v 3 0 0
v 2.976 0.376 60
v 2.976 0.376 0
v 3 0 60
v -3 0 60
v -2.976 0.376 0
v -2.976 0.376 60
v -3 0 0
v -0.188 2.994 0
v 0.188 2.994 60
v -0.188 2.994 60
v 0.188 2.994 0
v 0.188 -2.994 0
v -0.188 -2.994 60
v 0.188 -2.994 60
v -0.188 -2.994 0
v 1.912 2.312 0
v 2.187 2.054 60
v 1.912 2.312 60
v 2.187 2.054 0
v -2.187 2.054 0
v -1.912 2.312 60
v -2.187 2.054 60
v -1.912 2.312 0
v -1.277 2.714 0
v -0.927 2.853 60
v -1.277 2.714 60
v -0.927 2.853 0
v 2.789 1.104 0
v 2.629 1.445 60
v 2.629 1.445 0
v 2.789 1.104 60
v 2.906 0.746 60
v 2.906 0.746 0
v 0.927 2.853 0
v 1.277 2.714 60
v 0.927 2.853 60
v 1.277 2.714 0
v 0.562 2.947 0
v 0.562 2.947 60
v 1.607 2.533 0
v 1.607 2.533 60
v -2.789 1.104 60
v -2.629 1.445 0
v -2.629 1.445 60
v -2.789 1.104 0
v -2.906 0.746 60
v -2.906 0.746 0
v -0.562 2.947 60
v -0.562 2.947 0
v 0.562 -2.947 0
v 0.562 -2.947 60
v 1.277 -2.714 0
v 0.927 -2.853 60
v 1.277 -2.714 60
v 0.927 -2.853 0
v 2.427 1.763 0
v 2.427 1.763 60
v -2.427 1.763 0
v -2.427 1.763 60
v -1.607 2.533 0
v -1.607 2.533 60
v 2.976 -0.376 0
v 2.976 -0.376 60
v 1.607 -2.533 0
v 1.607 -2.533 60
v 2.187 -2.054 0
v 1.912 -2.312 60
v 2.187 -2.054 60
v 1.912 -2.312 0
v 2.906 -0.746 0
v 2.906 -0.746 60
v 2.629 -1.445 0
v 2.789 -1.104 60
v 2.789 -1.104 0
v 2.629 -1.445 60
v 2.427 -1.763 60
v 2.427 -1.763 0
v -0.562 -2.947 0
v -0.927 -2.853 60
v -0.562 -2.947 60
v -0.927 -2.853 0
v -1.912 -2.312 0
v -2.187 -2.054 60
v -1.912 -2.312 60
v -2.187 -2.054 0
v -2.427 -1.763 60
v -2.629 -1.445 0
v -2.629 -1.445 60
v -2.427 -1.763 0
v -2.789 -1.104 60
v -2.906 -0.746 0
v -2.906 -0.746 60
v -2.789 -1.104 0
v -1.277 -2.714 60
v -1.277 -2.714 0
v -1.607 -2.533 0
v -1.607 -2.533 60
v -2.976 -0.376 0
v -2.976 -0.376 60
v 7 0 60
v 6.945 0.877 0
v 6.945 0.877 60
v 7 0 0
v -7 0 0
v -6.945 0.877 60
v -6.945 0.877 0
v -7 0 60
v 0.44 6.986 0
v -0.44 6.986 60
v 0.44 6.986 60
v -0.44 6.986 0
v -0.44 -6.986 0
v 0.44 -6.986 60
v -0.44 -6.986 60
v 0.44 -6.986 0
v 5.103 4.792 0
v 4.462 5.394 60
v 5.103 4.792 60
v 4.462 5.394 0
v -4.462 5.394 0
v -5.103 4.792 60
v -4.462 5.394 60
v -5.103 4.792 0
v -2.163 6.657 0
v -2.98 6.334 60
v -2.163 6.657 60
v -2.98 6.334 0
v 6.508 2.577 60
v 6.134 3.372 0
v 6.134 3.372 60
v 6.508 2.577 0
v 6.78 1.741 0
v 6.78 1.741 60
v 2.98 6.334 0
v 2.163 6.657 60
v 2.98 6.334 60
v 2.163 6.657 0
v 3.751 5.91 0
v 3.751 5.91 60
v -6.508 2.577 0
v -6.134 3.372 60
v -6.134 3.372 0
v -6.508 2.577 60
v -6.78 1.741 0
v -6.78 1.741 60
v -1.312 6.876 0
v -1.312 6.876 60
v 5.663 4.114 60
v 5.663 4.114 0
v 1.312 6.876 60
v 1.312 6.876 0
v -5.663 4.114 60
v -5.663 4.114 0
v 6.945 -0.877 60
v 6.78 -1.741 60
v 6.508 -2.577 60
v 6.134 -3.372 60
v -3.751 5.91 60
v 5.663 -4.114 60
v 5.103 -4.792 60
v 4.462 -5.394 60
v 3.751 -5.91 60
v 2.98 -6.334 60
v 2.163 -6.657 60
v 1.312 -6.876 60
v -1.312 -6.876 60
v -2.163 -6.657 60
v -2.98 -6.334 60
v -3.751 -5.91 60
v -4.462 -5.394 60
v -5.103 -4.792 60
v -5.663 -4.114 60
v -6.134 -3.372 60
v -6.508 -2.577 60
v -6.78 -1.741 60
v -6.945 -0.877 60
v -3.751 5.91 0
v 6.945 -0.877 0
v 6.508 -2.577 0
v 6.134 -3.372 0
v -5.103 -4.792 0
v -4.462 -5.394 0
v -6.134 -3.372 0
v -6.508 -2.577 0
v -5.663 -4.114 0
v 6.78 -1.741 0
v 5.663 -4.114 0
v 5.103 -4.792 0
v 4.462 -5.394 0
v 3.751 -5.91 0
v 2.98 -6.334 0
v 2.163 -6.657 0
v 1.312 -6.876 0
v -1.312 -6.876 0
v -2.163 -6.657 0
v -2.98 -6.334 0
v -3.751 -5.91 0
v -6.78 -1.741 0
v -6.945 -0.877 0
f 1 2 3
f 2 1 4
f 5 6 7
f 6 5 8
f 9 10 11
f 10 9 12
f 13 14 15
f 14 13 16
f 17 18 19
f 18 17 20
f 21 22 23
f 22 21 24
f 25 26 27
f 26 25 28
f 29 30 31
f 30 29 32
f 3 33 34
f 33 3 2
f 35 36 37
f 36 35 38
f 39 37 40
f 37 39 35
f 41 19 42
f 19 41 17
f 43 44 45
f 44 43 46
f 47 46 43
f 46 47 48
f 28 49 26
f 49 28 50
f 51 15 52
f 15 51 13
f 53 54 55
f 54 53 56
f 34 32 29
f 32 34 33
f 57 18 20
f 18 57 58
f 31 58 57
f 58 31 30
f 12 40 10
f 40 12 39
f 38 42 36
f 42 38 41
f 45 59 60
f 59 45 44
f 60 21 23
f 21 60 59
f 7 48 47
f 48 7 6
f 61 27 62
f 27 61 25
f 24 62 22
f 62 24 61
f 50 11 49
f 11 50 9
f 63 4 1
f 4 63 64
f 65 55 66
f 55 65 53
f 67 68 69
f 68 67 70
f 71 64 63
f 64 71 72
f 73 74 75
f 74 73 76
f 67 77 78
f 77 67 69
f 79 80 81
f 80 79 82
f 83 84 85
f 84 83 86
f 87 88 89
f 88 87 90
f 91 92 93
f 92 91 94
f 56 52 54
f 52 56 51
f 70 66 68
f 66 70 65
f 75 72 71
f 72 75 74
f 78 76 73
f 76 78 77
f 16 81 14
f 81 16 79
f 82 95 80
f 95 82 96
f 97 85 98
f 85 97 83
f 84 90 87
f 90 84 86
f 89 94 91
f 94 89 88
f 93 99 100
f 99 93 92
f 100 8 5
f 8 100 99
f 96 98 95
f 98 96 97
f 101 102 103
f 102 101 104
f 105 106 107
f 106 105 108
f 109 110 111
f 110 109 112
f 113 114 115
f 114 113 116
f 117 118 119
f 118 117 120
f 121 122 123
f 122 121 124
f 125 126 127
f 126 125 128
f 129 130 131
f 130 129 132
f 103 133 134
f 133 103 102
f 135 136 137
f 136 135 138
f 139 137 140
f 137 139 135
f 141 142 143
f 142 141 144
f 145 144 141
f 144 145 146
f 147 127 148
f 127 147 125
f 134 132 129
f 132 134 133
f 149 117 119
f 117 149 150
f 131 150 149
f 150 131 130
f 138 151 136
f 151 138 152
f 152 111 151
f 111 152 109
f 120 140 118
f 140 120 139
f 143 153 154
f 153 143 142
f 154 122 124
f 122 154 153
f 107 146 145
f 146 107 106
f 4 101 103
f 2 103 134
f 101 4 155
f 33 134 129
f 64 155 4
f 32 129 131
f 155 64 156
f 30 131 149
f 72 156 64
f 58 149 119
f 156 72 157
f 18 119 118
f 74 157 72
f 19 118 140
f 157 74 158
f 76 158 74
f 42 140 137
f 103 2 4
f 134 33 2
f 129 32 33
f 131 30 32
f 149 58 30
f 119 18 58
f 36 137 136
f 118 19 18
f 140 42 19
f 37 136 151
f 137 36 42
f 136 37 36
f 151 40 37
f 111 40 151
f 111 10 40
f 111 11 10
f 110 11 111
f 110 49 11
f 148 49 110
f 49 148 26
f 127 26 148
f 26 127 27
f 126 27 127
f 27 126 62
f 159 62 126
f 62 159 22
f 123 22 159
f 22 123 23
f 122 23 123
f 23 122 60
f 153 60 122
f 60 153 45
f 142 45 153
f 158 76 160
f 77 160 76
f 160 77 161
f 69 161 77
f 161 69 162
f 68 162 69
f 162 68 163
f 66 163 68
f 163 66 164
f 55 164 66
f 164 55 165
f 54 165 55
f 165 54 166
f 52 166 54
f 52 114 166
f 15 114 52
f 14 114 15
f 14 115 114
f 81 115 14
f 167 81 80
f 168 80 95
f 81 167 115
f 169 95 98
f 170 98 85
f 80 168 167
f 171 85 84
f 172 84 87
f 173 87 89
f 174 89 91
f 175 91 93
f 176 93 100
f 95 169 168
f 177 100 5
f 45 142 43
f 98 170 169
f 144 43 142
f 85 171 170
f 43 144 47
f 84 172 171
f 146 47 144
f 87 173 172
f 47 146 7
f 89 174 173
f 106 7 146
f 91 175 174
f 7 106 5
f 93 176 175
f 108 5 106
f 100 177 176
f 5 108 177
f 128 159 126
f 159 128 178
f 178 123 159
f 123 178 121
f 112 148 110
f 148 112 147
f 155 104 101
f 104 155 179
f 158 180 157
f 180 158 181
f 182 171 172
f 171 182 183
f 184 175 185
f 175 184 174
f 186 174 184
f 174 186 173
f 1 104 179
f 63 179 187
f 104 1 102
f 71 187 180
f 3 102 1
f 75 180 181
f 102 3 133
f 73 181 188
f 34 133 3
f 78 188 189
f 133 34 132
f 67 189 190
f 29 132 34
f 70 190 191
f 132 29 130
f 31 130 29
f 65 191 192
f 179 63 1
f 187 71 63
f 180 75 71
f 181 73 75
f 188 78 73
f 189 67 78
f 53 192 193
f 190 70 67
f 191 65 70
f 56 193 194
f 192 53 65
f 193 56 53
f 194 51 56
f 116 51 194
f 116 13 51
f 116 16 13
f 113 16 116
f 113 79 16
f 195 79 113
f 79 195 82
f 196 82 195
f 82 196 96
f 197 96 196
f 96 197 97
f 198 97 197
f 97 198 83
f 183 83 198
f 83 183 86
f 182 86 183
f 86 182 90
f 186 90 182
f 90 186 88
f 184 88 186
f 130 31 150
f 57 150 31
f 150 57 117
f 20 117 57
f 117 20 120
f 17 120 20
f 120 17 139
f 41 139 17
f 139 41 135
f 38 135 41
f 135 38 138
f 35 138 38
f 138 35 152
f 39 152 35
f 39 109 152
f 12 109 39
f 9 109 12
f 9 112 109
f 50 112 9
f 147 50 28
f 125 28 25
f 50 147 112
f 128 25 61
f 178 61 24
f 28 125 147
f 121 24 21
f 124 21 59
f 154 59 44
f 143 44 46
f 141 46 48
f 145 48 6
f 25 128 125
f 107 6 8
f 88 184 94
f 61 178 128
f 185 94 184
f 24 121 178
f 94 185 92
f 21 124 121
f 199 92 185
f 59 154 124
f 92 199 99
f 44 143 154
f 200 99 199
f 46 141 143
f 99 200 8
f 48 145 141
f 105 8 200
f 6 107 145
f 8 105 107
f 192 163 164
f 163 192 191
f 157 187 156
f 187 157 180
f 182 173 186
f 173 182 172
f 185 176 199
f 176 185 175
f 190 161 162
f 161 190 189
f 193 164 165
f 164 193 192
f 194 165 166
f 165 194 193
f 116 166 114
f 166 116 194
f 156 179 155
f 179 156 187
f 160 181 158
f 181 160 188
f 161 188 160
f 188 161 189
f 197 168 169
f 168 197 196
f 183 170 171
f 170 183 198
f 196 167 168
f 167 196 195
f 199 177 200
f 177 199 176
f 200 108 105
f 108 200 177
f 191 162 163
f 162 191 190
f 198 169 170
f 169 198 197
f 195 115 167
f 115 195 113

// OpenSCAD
$fn = 50;


difference() {
	union() {
		cylinder(h = 60, r = 7.0000000000);
	}
	union() {
		translate(v = [0, 0, -100]) {
			cylinder(h = 200, r = 3.0000000000);
		}
		translate(v = [0, 0, -100]) {
			cylinder(h = 200, r = 1.5000000000);
		}
	}
}
